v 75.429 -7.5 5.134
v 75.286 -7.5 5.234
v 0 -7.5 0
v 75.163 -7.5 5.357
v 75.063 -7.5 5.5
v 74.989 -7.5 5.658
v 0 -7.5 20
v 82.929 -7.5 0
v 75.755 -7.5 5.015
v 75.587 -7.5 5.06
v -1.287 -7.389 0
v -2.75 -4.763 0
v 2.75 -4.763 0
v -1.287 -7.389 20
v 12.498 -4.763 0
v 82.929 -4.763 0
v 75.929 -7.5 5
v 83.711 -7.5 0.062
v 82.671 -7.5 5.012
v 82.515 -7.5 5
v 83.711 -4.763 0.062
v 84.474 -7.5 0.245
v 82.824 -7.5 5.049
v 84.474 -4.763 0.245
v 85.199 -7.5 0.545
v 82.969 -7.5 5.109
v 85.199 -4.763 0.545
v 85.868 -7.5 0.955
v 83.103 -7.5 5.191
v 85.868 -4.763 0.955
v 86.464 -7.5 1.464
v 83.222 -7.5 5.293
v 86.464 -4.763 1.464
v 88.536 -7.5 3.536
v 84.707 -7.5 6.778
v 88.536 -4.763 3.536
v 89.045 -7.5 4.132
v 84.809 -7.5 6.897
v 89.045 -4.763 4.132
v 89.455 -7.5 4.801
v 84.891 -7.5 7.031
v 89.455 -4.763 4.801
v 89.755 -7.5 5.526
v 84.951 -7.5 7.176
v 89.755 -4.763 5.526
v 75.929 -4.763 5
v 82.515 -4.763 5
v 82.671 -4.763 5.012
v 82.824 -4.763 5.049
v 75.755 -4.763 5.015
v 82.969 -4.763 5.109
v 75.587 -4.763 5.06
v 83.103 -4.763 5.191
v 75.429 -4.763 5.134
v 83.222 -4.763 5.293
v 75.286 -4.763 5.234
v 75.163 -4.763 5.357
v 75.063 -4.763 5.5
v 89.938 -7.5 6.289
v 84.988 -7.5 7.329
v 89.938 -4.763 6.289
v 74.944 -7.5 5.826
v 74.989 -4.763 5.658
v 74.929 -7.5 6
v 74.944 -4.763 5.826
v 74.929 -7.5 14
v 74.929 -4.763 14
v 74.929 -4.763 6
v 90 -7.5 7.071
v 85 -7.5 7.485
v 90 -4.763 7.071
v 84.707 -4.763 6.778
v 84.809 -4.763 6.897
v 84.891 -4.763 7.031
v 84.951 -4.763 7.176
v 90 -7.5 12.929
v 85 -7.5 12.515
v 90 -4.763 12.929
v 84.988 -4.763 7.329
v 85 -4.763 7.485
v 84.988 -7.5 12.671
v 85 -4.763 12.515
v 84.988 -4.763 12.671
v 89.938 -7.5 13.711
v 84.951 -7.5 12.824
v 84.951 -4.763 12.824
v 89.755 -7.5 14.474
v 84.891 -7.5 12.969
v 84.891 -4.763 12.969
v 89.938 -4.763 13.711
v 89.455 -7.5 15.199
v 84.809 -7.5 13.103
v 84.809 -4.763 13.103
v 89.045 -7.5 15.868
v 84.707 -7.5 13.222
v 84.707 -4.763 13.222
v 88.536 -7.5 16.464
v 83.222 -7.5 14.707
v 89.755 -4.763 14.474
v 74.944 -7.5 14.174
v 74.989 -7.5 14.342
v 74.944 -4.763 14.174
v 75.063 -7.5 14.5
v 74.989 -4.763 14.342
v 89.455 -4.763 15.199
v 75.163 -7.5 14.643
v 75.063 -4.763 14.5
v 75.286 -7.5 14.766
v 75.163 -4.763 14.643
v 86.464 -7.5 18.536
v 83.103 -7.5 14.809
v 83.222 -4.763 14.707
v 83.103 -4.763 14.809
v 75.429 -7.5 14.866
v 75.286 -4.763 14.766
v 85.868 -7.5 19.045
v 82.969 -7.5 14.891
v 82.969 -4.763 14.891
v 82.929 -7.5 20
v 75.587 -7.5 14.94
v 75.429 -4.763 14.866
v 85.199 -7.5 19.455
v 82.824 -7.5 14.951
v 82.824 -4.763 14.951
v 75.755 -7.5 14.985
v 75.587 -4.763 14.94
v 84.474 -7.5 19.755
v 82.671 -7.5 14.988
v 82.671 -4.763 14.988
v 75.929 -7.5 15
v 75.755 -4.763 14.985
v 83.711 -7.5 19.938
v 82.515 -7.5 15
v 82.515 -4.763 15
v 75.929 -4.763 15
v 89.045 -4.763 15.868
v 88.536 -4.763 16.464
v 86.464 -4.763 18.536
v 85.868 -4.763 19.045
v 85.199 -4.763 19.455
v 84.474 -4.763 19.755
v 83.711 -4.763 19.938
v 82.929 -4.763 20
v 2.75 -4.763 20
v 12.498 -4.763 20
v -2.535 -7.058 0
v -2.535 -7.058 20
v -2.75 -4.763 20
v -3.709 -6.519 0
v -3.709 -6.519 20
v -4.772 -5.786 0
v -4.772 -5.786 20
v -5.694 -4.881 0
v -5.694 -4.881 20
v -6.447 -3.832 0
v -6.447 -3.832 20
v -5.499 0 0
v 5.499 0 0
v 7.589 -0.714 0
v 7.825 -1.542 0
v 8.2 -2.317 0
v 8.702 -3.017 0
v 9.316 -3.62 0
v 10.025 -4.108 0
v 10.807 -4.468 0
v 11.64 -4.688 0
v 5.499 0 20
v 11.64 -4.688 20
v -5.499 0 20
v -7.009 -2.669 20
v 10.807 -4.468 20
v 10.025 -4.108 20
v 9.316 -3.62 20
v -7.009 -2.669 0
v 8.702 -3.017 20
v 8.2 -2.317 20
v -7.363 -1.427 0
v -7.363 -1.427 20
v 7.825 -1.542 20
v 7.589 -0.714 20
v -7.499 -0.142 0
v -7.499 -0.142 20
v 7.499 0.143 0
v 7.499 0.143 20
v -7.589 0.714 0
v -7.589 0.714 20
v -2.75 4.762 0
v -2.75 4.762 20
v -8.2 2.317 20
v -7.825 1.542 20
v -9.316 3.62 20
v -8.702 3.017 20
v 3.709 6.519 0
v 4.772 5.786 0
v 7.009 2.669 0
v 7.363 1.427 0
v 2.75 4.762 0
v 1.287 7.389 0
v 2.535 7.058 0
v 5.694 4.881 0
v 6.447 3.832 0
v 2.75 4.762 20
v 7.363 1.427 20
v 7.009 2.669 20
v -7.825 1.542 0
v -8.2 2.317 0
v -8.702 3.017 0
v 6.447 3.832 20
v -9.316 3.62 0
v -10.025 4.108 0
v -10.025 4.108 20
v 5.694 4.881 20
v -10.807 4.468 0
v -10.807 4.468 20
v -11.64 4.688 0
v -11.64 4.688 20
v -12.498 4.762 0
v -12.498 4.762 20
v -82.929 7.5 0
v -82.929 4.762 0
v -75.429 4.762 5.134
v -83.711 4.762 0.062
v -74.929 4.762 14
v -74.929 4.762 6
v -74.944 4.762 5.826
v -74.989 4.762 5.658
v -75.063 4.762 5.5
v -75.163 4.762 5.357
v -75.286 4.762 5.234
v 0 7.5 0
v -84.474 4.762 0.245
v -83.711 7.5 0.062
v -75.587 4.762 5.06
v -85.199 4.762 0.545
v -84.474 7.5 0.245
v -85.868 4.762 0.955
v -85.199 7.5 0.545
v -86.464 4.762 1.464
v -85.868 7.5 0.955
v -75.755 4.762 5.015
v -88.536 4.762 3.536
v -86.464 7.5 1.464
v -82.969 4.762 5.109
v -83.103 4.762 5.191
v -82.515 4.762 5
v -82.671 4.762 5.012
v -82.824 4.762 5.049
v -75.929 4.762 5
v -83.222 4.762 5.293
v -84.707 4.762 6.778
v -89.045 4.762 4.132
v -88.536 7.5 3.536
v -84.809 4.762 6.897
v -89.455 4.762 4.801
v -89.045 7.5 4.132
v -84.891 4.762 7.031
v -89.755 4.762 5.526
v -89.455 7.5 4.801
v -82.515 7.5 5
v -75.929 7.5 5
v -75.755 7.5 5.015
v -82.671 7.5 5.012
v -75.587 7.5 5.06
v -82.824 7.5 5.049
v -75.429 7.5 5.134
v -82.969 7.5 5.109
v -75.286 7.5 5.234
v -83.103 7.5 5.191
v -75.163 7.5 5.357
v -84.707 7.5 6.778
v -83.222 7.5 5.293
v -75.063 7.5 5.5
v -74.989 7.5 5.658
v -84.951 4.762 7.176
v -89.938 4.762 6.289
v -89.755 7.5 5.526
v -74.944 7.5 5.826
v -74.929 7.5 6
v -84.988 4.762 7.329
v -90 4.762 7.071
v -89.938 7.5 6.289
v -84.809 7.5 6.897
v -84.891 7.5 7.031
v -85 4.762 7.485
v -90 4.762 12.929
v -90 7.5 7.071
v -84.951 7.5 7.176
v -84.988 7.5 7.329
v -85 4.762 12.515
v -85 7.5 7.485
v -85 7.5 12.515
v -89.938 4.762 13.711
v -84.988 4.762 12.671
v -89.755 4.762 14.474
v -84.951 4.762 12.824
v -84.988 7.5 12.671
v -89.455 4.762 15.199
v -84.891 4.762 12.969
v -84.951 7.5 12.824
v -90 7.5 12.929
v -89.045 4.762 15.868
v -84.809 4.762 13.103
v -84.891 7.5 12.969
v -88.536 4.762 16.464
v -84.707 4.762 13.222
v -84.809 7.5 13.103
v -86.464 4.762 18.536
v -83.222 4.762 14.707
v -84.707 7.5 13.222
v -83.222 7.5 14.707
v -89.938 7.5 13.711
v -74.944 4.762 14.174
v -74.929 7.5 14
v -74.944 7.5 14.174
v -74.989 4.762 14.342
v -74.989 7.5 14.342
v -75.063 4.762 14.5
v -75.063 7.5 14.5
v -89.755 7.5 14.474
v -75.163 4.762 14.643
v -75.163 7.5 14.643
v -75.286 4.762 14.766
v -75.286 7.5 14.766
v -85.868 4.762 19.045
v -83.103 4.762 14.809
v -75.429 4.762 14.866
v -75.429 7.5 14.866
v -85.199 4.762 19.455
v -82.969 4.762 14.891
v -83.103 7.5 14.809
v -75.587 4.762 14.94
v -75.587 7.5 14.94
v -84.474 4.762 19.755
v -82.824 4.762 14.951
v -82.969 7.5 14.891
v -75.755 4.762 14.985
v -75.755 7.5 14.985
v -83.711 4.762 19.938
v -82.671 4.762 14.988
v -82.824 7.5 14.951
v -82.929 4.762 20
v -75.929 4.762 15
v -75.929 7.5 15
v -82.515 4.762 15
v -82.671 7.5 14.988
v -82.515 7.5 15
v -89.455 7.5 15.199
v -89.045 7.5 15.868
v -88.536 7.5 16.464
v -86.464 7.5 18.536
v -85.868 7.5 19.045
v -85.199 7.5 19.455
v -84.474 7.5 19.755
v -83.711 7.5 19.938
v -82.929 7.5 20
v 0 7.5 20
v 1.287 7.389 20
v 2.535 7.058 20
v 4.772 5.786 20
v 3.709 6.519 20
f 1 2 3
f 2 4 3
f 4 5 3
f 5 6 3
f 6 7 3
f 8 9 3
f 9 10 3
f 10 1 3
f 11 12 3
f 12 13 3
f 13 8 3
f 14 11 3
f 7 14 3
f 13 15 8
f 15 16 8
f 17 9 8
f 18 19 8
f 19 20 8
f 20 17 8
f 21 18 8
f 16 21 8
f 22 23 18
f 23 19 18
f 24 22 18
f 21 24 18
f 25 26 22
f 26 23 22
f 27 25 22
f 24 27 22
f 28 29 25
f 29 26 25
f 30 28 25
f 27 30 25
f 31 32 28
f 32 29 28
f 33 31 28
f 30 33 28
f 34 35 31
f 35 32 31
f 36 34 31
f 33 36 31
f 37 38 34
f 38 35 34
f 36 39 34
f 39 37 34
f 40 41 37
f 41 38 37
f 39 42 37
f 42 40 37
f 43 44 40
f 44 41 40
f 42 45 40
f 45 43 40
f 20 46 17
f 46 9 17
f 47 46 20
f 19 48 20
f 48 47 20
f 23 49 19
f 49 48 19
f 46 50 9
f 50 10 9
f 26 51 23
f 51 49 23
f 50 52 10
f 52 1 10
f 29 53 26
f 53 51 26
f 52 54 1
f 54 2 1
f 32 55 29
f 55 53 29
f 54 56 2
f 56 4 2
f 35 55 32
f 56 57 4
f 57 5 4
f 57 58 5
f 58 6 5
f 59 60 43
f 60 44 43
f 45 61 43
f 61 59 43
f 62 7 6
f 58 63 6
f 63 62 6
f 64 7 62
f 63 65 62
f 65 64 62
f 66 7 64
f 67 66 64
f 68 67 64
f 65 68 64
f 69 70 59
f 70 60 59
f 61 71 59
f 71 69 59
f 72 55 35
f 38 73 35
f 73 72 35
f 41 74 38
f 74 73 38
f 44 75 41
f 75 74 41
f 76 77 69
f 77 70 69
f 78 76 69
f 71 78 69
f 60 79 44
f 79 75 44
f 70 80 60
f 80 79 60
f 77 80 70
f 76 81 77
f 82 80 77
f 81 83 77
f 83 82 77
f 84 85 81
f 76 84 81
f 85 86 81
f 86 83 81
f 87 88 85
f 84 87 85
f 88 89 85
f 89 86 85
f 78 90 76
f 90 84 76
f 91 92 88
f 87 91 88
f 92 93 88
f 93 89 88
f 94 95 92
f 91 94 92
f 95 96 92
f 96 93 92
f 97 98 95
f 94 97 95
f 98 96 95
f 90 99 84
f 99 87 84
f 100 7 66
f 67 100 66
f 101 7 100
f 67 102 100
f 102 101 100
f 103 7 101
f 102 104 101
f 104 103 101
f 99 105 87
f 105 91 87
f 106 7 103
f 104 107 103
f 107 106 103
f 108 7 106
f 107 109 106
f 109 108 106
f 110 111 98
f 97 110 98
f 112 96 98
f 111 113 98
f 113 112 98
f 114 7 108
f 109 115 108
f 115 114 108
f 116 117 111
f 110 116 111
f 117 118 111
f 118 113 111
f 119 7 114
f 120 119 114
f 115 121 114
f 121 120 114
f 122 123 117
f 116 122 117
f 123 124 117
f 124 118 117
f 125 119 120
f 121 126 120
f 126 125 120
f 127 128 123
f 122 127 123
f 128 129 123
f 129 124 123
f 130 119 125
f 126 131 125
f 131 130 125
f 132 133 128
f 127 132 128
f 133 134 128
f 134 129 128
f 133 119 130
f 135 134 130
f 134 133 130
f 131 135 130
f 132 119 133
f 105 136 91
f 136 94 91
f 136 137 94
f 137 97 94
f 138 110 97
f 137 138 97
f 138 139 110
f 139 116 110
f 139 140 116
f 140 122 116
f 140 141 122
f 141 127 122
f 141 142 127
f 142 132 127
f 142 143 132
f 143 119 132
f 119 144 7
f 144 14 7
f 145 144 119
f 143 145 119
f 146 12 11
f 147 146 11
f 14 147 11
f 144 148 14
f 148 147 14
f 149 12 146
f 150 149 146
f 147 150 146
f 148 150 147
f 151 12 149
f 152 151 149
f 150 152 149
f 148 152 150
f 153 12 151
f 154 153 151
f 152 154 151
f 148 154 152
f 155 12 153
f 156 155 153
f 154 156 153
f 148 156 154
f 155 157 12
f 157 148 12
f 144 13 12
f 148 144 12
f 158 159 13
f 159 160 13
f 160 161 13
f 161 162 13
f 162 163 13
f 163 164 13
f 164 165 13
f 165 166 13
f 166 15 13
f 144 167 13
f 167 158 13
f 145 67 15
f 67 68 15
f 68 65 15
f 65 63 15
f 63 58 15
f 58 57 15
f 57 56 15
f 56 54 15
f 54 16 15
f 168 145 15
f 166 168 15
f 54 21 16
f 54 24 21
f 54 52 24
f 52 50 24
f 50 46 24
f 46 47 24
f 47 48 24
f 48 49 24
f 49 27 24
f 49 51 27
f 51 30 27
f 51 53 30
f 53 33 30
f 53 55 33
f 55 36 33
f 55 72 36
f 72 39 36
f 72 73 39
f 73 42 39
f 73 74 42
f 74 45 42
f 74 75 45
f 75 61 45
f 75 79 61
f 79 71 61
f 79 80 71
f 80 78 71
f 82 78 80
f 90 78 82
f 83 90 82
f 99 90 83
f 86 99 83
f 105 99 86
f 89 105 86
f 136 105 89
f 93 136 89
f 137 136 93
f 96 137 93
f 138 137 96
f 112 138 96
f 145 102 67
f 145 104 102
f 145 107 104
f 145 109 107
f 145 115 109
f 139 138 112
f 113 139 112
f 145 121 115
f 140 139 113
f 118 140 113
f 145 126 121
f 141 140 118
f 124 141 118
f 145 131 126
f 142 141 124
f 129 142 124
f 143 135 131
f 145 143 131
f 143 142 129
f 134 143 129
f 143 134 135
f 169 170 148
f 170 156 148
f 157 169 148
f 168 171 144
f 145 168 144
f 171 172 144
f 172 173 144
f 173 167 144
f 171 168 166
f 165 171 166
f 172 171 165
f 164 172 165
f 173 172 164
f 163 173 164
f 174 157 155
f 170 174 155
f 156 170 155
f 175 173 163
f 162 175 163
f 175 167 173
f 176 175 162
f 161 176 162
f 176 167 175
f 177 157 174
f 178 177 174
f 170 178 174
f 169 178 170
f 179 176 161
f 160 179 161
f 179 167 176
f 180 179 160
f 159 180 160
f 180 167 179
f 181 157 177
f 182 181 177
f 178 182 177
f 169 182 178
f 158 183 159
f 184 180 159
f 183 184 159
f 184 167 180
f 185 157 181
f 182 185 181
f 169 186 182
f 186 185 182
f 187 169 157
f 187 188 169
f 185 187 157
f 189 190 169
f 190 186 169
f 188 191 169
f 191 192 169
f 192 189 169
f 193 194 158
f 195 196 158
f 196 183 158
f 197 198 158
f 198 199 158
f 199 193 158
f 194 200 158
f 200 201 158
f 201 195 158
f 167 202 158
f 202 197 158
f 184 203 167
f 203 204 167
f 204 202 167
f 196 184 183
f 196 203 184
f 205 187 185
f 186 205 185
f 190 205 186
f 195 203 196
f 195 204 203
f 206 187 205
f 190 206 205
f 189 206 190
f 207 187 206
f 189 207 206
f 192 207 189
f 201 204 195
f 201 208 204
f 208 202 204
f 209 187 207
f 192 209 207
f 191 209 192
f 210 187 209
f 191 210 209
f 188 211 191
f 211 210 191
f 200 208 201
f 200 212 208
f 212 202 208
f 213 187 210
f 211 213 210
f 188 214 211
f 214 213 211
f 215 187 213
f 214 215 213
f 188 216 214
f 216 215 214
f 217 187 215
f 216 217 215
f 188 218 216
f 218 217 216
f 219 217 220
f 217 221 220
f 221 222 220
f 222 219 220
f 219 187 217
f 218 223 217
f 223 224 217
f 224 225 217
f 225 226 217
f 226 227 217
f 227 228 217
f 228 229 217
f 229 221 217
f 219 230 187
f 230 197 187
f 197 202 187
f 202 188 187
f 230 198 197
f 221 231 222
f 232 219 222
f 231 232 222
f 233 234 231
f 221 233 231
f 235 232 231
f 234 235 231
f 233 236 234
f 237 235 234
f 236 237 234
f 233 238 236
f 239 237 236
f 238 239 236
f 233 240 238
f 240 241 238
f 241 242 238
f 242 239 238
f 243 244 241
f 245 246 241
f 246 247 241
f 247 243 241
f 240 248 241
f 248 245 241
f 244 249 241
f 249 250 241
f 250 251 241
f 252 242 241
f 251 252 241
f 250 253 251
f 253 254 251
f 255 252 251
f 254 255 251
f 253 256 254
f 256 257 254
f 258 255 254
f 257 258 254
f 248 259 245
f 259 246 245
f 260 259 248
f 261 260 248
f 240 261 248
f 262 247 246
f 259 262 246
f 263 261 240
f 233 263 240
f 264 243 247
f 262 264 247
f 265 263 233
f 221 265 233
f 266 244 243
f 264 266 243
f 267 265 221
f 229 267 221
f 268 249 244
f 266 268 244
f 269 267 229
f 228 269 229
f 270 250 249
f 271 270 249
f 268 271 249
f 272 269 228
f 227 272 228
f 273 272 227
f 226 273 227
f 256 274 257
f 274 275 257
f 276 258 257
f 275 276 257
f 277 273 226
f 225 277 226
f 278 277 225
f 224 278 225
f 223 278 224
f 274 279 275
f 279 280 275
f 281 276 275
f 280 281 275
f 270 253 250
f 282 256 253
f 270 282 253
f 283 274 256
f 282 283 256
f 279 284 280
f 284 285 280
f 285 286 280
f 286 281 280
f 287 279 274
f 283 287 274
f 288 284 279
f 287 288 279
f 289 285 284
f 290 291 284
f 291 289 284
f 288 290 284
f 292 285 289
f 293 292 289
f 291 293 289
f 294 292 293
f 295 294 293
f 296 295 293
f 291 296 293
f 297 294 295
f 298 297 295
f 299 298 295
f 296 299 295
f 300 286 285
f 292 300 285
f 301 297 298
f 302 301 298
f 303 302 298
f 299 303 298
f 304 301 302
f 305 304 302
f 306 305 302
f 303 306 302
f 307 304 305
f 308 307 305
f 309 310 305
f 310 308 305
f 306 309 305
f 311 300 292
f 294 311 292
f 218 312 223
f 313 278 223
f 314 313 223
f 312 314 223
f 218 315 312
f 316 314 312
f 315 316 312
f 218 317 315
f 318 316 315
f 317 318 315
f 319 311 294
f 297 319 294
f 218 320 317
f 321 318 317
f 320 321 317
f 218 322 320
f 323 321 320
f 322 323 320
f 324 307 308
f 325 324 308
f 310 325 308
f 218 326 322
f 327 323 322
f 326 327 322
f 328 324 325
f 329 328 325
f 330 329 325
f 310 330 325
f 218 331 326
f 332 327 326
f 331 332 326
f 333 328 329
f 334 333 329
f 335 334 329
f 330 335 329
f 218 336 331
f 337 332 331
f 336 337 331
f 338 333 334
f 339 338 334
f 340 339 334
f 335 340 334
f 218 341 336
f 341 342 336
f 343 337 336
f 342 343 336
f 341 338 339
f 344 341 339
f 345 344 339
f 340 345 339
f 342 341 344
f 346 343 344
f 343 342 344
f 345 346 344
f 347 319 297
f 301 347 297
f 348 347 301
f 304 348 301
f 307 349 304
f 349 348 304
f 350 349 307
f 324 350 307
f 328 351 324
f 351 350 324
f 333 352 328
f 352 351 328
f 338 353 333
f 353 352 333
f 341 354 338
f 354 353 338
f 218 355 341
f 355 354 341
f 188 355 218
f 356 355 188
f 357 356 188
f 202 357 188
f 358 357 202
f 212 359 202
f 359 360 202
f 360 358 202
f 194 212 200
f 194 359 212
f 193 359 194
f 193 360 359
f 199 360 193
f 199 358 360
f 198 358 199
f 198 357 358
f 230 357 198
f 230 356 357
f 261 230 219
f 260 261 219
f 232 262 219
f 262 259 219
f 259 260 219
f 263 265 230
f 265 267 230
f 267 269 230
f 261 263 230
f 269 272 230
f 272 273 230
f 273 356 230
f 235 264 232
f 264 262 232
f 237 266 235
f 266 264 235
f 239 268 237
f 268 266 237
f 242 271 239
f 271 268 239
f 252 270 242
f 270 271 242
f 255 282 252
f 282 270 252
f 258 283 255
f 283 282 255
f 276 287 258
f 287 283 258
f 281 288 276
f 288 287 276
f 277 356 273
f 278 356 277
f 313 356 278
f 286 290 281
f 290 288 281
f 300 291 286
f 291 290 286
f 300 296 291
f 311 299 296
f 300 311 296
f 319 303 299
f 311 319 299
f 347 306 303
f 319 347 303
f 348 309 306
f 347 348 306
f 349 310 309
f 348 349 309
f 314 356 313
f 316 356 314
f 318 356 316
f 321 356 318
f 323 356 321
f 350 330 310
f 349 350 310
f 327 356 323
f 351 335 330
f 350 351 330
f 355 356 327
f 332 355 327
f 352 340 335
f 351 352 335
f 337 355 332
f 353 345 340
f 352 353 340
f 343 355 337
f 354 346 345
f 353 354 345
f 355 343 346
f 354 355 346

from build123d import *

# Parameters (mm, degrees)
SKETCH2_R           = 7.5
BOSS_EXTRUDE1_DEPTH = 20
SKETCH3_W           = 20
SKETCH3_H           = 2.7375
BOSS_EXTRUDE2_DEPTH = 90
FILLET1_R           = 5
CHAMFER1_SIZE       = 5
FILLET2_R           = 5
CUT_EXTRUDE1_DEPTH  = 45
FILLET3_R           = 1
SKETCH5_W           = 20
SKETCH5_H           = 2.7375
BOSS_EXTRUDE3_DEPTH = 90
CHAMFER2_SIZE       = 5
FILLET4_R           = 5
FILLET5_R           = 5
CUT_EXTRUDE2_DEPTH  = 90
FILLET6_R           = 1


with BuildPart() as part:
    # Sketch2 → Boss-Extrude1 (new body)
    with BuildSketch(Plane.XY):
        Circle(SKETCH2_R)
        Polygon((5.499261314, 0), (2.749630657, 4.7625), (-2.749630657, 4.7625), (-5.499261314, 0), (-2.749630657, -4.7625), (2.749630657, -4.7625), align=None, mode=Mode.SUBTRACT)
    extrude(amount=BOSS_EXTRUDE1_DEPTH)

    # Sketch3 → Boss-Extrude2 (add)
    with BuildSketch(Plane.ZY):
        with Locations((10, 6.13125)):
            Rectangle(SKETCH3_W, SKETCH3_H)
    extrude(amount=BOSS_EXTRUDE2_DEPTH)

    # Fillet1
    fillet1_edges = [part.edges().sort_by_distance(p)[0] for p in [
        (-5.793841019, 4.7625, 10),
    ]]
    fillet(fillet1_edges, radius=FILLET1_R)

    # Chamfer1
    chamfer1_edges = [part.edges().sort_by_distance(p)[0] for p in [
        (-90, 6.13125, 0),
        (-90, 6.13125, 20),
    ]]
    chamfer(chamfer1_edges, length=CHAMFER1_SIZE)

    # Fillet2
    fillet2_edges = [part.edges().sort_by_distance(p)[0] for p in [
        (-90, 6.13125, 15),
        (-90, 6.13125, 5),
        (-85, 6.13125, 0),
        (-85, 6.13125, 20),
    ]]
    fillet(fillet2_edges, radius=FILLET2_R)

    # Sketch4 → Cut-Extrude1 (cut)
    with BuildSketch(Plane(origin=(0, 7.5, 0), x_dir=(1, 0, 0), z_dir=(0, 1, 0))):
        Polygon((-74.928932188, -15), (-74.928932188, -5), (-82.928932188, -5), (-85, -7.071067812), (-85, -12.928932188), (-82.928932188, -15), align=None)
    extrude(amount=-CUT_EXTRUDE1_DEPTH, mode=Mode.SUBTRACT)

    # Fillet3
    fillet3_edges = [part.edges().sort_by_distance(p)[0] for p in [
        (-74.928932188, 6.13125, 15),
        (-82.928932188, 6.13125, 15),
        (-85, 6.13125, 12.928932188),
        (-85, 6.13125, 7.071067812),
        (-82.928932188, 6.13125, 5),
        (-74.928932188, 6.13125, 5),
    ]]
    fillet(fillet3_edges, radius=FILLET3_R)

    # Sketch5 → Boss-Extrude3 (add)
    with BuildSketch(Plane.ZY):
        with Locations((10, -6.13125)):
            Rectangle(SKETCH5_W, SKETCH5_H)
    extrude(amount=-BOSS_EXTRUDE3_DEPTH)

    # Chamfer2
    chamfer2_edges = [part.edges().sort_by_distance(p)[0] for p in [
        (90, -6.13125, 20),
        (90, -6.13125, 0),
    ]]
    chamfer(chamfer2_edges, length=CHAMFER2_SIZE)

    # Fillet4
    fillet4_edges = [part.edges().sort_by_distance(p)[0] for p in [
        (85, -6.13125, 20),
        (90, -6.13125, 5),
        (90, -6.13125, 15),
        (85, -6.13125, 0),
    ]]
    fillet(fillet4_edges, radius=FILLET4_R)

    # Fillet5
    fillet5_edges = [part.edges().sort_by_distance(p)[0] for p in [
        (5.793841019, -4.7625, 10),
    ]]
    fillet(fillet5_edges, radius=FILLET5_R)

    # Sketch7 → Cut-Extrude2 (cut)
    with BuildSketch(Plane.XZ.offset(7.5)):
        Polygon((74.928932188, 5), (74.928932188, 15), (82.928932188, 15), (85, 12.928932188), (85, 7.071067812), (82.928932188, 5), align=None)
    extrude(amount=-CUT_EXTRUDE2_DEPTH, mode=Mode.SUBTRACT)

    # Fillet6
    fillet6_edges = [part.edges().sort_by_distance(p)[0] for p in [
        (82.928932188, -6.13125, 5),
        (74.928932188, -6.13125, 5),
        (74.928932188, -6.13125, 15),
        (82.928932188, -6.13125, 15),
        (85, -6.13125, 12.928932188),
        (85, -6.13125, 7.071067812),
    ]]
    fillet(fillet6_edges, radius=FILLET6_R)


solid = part.part
